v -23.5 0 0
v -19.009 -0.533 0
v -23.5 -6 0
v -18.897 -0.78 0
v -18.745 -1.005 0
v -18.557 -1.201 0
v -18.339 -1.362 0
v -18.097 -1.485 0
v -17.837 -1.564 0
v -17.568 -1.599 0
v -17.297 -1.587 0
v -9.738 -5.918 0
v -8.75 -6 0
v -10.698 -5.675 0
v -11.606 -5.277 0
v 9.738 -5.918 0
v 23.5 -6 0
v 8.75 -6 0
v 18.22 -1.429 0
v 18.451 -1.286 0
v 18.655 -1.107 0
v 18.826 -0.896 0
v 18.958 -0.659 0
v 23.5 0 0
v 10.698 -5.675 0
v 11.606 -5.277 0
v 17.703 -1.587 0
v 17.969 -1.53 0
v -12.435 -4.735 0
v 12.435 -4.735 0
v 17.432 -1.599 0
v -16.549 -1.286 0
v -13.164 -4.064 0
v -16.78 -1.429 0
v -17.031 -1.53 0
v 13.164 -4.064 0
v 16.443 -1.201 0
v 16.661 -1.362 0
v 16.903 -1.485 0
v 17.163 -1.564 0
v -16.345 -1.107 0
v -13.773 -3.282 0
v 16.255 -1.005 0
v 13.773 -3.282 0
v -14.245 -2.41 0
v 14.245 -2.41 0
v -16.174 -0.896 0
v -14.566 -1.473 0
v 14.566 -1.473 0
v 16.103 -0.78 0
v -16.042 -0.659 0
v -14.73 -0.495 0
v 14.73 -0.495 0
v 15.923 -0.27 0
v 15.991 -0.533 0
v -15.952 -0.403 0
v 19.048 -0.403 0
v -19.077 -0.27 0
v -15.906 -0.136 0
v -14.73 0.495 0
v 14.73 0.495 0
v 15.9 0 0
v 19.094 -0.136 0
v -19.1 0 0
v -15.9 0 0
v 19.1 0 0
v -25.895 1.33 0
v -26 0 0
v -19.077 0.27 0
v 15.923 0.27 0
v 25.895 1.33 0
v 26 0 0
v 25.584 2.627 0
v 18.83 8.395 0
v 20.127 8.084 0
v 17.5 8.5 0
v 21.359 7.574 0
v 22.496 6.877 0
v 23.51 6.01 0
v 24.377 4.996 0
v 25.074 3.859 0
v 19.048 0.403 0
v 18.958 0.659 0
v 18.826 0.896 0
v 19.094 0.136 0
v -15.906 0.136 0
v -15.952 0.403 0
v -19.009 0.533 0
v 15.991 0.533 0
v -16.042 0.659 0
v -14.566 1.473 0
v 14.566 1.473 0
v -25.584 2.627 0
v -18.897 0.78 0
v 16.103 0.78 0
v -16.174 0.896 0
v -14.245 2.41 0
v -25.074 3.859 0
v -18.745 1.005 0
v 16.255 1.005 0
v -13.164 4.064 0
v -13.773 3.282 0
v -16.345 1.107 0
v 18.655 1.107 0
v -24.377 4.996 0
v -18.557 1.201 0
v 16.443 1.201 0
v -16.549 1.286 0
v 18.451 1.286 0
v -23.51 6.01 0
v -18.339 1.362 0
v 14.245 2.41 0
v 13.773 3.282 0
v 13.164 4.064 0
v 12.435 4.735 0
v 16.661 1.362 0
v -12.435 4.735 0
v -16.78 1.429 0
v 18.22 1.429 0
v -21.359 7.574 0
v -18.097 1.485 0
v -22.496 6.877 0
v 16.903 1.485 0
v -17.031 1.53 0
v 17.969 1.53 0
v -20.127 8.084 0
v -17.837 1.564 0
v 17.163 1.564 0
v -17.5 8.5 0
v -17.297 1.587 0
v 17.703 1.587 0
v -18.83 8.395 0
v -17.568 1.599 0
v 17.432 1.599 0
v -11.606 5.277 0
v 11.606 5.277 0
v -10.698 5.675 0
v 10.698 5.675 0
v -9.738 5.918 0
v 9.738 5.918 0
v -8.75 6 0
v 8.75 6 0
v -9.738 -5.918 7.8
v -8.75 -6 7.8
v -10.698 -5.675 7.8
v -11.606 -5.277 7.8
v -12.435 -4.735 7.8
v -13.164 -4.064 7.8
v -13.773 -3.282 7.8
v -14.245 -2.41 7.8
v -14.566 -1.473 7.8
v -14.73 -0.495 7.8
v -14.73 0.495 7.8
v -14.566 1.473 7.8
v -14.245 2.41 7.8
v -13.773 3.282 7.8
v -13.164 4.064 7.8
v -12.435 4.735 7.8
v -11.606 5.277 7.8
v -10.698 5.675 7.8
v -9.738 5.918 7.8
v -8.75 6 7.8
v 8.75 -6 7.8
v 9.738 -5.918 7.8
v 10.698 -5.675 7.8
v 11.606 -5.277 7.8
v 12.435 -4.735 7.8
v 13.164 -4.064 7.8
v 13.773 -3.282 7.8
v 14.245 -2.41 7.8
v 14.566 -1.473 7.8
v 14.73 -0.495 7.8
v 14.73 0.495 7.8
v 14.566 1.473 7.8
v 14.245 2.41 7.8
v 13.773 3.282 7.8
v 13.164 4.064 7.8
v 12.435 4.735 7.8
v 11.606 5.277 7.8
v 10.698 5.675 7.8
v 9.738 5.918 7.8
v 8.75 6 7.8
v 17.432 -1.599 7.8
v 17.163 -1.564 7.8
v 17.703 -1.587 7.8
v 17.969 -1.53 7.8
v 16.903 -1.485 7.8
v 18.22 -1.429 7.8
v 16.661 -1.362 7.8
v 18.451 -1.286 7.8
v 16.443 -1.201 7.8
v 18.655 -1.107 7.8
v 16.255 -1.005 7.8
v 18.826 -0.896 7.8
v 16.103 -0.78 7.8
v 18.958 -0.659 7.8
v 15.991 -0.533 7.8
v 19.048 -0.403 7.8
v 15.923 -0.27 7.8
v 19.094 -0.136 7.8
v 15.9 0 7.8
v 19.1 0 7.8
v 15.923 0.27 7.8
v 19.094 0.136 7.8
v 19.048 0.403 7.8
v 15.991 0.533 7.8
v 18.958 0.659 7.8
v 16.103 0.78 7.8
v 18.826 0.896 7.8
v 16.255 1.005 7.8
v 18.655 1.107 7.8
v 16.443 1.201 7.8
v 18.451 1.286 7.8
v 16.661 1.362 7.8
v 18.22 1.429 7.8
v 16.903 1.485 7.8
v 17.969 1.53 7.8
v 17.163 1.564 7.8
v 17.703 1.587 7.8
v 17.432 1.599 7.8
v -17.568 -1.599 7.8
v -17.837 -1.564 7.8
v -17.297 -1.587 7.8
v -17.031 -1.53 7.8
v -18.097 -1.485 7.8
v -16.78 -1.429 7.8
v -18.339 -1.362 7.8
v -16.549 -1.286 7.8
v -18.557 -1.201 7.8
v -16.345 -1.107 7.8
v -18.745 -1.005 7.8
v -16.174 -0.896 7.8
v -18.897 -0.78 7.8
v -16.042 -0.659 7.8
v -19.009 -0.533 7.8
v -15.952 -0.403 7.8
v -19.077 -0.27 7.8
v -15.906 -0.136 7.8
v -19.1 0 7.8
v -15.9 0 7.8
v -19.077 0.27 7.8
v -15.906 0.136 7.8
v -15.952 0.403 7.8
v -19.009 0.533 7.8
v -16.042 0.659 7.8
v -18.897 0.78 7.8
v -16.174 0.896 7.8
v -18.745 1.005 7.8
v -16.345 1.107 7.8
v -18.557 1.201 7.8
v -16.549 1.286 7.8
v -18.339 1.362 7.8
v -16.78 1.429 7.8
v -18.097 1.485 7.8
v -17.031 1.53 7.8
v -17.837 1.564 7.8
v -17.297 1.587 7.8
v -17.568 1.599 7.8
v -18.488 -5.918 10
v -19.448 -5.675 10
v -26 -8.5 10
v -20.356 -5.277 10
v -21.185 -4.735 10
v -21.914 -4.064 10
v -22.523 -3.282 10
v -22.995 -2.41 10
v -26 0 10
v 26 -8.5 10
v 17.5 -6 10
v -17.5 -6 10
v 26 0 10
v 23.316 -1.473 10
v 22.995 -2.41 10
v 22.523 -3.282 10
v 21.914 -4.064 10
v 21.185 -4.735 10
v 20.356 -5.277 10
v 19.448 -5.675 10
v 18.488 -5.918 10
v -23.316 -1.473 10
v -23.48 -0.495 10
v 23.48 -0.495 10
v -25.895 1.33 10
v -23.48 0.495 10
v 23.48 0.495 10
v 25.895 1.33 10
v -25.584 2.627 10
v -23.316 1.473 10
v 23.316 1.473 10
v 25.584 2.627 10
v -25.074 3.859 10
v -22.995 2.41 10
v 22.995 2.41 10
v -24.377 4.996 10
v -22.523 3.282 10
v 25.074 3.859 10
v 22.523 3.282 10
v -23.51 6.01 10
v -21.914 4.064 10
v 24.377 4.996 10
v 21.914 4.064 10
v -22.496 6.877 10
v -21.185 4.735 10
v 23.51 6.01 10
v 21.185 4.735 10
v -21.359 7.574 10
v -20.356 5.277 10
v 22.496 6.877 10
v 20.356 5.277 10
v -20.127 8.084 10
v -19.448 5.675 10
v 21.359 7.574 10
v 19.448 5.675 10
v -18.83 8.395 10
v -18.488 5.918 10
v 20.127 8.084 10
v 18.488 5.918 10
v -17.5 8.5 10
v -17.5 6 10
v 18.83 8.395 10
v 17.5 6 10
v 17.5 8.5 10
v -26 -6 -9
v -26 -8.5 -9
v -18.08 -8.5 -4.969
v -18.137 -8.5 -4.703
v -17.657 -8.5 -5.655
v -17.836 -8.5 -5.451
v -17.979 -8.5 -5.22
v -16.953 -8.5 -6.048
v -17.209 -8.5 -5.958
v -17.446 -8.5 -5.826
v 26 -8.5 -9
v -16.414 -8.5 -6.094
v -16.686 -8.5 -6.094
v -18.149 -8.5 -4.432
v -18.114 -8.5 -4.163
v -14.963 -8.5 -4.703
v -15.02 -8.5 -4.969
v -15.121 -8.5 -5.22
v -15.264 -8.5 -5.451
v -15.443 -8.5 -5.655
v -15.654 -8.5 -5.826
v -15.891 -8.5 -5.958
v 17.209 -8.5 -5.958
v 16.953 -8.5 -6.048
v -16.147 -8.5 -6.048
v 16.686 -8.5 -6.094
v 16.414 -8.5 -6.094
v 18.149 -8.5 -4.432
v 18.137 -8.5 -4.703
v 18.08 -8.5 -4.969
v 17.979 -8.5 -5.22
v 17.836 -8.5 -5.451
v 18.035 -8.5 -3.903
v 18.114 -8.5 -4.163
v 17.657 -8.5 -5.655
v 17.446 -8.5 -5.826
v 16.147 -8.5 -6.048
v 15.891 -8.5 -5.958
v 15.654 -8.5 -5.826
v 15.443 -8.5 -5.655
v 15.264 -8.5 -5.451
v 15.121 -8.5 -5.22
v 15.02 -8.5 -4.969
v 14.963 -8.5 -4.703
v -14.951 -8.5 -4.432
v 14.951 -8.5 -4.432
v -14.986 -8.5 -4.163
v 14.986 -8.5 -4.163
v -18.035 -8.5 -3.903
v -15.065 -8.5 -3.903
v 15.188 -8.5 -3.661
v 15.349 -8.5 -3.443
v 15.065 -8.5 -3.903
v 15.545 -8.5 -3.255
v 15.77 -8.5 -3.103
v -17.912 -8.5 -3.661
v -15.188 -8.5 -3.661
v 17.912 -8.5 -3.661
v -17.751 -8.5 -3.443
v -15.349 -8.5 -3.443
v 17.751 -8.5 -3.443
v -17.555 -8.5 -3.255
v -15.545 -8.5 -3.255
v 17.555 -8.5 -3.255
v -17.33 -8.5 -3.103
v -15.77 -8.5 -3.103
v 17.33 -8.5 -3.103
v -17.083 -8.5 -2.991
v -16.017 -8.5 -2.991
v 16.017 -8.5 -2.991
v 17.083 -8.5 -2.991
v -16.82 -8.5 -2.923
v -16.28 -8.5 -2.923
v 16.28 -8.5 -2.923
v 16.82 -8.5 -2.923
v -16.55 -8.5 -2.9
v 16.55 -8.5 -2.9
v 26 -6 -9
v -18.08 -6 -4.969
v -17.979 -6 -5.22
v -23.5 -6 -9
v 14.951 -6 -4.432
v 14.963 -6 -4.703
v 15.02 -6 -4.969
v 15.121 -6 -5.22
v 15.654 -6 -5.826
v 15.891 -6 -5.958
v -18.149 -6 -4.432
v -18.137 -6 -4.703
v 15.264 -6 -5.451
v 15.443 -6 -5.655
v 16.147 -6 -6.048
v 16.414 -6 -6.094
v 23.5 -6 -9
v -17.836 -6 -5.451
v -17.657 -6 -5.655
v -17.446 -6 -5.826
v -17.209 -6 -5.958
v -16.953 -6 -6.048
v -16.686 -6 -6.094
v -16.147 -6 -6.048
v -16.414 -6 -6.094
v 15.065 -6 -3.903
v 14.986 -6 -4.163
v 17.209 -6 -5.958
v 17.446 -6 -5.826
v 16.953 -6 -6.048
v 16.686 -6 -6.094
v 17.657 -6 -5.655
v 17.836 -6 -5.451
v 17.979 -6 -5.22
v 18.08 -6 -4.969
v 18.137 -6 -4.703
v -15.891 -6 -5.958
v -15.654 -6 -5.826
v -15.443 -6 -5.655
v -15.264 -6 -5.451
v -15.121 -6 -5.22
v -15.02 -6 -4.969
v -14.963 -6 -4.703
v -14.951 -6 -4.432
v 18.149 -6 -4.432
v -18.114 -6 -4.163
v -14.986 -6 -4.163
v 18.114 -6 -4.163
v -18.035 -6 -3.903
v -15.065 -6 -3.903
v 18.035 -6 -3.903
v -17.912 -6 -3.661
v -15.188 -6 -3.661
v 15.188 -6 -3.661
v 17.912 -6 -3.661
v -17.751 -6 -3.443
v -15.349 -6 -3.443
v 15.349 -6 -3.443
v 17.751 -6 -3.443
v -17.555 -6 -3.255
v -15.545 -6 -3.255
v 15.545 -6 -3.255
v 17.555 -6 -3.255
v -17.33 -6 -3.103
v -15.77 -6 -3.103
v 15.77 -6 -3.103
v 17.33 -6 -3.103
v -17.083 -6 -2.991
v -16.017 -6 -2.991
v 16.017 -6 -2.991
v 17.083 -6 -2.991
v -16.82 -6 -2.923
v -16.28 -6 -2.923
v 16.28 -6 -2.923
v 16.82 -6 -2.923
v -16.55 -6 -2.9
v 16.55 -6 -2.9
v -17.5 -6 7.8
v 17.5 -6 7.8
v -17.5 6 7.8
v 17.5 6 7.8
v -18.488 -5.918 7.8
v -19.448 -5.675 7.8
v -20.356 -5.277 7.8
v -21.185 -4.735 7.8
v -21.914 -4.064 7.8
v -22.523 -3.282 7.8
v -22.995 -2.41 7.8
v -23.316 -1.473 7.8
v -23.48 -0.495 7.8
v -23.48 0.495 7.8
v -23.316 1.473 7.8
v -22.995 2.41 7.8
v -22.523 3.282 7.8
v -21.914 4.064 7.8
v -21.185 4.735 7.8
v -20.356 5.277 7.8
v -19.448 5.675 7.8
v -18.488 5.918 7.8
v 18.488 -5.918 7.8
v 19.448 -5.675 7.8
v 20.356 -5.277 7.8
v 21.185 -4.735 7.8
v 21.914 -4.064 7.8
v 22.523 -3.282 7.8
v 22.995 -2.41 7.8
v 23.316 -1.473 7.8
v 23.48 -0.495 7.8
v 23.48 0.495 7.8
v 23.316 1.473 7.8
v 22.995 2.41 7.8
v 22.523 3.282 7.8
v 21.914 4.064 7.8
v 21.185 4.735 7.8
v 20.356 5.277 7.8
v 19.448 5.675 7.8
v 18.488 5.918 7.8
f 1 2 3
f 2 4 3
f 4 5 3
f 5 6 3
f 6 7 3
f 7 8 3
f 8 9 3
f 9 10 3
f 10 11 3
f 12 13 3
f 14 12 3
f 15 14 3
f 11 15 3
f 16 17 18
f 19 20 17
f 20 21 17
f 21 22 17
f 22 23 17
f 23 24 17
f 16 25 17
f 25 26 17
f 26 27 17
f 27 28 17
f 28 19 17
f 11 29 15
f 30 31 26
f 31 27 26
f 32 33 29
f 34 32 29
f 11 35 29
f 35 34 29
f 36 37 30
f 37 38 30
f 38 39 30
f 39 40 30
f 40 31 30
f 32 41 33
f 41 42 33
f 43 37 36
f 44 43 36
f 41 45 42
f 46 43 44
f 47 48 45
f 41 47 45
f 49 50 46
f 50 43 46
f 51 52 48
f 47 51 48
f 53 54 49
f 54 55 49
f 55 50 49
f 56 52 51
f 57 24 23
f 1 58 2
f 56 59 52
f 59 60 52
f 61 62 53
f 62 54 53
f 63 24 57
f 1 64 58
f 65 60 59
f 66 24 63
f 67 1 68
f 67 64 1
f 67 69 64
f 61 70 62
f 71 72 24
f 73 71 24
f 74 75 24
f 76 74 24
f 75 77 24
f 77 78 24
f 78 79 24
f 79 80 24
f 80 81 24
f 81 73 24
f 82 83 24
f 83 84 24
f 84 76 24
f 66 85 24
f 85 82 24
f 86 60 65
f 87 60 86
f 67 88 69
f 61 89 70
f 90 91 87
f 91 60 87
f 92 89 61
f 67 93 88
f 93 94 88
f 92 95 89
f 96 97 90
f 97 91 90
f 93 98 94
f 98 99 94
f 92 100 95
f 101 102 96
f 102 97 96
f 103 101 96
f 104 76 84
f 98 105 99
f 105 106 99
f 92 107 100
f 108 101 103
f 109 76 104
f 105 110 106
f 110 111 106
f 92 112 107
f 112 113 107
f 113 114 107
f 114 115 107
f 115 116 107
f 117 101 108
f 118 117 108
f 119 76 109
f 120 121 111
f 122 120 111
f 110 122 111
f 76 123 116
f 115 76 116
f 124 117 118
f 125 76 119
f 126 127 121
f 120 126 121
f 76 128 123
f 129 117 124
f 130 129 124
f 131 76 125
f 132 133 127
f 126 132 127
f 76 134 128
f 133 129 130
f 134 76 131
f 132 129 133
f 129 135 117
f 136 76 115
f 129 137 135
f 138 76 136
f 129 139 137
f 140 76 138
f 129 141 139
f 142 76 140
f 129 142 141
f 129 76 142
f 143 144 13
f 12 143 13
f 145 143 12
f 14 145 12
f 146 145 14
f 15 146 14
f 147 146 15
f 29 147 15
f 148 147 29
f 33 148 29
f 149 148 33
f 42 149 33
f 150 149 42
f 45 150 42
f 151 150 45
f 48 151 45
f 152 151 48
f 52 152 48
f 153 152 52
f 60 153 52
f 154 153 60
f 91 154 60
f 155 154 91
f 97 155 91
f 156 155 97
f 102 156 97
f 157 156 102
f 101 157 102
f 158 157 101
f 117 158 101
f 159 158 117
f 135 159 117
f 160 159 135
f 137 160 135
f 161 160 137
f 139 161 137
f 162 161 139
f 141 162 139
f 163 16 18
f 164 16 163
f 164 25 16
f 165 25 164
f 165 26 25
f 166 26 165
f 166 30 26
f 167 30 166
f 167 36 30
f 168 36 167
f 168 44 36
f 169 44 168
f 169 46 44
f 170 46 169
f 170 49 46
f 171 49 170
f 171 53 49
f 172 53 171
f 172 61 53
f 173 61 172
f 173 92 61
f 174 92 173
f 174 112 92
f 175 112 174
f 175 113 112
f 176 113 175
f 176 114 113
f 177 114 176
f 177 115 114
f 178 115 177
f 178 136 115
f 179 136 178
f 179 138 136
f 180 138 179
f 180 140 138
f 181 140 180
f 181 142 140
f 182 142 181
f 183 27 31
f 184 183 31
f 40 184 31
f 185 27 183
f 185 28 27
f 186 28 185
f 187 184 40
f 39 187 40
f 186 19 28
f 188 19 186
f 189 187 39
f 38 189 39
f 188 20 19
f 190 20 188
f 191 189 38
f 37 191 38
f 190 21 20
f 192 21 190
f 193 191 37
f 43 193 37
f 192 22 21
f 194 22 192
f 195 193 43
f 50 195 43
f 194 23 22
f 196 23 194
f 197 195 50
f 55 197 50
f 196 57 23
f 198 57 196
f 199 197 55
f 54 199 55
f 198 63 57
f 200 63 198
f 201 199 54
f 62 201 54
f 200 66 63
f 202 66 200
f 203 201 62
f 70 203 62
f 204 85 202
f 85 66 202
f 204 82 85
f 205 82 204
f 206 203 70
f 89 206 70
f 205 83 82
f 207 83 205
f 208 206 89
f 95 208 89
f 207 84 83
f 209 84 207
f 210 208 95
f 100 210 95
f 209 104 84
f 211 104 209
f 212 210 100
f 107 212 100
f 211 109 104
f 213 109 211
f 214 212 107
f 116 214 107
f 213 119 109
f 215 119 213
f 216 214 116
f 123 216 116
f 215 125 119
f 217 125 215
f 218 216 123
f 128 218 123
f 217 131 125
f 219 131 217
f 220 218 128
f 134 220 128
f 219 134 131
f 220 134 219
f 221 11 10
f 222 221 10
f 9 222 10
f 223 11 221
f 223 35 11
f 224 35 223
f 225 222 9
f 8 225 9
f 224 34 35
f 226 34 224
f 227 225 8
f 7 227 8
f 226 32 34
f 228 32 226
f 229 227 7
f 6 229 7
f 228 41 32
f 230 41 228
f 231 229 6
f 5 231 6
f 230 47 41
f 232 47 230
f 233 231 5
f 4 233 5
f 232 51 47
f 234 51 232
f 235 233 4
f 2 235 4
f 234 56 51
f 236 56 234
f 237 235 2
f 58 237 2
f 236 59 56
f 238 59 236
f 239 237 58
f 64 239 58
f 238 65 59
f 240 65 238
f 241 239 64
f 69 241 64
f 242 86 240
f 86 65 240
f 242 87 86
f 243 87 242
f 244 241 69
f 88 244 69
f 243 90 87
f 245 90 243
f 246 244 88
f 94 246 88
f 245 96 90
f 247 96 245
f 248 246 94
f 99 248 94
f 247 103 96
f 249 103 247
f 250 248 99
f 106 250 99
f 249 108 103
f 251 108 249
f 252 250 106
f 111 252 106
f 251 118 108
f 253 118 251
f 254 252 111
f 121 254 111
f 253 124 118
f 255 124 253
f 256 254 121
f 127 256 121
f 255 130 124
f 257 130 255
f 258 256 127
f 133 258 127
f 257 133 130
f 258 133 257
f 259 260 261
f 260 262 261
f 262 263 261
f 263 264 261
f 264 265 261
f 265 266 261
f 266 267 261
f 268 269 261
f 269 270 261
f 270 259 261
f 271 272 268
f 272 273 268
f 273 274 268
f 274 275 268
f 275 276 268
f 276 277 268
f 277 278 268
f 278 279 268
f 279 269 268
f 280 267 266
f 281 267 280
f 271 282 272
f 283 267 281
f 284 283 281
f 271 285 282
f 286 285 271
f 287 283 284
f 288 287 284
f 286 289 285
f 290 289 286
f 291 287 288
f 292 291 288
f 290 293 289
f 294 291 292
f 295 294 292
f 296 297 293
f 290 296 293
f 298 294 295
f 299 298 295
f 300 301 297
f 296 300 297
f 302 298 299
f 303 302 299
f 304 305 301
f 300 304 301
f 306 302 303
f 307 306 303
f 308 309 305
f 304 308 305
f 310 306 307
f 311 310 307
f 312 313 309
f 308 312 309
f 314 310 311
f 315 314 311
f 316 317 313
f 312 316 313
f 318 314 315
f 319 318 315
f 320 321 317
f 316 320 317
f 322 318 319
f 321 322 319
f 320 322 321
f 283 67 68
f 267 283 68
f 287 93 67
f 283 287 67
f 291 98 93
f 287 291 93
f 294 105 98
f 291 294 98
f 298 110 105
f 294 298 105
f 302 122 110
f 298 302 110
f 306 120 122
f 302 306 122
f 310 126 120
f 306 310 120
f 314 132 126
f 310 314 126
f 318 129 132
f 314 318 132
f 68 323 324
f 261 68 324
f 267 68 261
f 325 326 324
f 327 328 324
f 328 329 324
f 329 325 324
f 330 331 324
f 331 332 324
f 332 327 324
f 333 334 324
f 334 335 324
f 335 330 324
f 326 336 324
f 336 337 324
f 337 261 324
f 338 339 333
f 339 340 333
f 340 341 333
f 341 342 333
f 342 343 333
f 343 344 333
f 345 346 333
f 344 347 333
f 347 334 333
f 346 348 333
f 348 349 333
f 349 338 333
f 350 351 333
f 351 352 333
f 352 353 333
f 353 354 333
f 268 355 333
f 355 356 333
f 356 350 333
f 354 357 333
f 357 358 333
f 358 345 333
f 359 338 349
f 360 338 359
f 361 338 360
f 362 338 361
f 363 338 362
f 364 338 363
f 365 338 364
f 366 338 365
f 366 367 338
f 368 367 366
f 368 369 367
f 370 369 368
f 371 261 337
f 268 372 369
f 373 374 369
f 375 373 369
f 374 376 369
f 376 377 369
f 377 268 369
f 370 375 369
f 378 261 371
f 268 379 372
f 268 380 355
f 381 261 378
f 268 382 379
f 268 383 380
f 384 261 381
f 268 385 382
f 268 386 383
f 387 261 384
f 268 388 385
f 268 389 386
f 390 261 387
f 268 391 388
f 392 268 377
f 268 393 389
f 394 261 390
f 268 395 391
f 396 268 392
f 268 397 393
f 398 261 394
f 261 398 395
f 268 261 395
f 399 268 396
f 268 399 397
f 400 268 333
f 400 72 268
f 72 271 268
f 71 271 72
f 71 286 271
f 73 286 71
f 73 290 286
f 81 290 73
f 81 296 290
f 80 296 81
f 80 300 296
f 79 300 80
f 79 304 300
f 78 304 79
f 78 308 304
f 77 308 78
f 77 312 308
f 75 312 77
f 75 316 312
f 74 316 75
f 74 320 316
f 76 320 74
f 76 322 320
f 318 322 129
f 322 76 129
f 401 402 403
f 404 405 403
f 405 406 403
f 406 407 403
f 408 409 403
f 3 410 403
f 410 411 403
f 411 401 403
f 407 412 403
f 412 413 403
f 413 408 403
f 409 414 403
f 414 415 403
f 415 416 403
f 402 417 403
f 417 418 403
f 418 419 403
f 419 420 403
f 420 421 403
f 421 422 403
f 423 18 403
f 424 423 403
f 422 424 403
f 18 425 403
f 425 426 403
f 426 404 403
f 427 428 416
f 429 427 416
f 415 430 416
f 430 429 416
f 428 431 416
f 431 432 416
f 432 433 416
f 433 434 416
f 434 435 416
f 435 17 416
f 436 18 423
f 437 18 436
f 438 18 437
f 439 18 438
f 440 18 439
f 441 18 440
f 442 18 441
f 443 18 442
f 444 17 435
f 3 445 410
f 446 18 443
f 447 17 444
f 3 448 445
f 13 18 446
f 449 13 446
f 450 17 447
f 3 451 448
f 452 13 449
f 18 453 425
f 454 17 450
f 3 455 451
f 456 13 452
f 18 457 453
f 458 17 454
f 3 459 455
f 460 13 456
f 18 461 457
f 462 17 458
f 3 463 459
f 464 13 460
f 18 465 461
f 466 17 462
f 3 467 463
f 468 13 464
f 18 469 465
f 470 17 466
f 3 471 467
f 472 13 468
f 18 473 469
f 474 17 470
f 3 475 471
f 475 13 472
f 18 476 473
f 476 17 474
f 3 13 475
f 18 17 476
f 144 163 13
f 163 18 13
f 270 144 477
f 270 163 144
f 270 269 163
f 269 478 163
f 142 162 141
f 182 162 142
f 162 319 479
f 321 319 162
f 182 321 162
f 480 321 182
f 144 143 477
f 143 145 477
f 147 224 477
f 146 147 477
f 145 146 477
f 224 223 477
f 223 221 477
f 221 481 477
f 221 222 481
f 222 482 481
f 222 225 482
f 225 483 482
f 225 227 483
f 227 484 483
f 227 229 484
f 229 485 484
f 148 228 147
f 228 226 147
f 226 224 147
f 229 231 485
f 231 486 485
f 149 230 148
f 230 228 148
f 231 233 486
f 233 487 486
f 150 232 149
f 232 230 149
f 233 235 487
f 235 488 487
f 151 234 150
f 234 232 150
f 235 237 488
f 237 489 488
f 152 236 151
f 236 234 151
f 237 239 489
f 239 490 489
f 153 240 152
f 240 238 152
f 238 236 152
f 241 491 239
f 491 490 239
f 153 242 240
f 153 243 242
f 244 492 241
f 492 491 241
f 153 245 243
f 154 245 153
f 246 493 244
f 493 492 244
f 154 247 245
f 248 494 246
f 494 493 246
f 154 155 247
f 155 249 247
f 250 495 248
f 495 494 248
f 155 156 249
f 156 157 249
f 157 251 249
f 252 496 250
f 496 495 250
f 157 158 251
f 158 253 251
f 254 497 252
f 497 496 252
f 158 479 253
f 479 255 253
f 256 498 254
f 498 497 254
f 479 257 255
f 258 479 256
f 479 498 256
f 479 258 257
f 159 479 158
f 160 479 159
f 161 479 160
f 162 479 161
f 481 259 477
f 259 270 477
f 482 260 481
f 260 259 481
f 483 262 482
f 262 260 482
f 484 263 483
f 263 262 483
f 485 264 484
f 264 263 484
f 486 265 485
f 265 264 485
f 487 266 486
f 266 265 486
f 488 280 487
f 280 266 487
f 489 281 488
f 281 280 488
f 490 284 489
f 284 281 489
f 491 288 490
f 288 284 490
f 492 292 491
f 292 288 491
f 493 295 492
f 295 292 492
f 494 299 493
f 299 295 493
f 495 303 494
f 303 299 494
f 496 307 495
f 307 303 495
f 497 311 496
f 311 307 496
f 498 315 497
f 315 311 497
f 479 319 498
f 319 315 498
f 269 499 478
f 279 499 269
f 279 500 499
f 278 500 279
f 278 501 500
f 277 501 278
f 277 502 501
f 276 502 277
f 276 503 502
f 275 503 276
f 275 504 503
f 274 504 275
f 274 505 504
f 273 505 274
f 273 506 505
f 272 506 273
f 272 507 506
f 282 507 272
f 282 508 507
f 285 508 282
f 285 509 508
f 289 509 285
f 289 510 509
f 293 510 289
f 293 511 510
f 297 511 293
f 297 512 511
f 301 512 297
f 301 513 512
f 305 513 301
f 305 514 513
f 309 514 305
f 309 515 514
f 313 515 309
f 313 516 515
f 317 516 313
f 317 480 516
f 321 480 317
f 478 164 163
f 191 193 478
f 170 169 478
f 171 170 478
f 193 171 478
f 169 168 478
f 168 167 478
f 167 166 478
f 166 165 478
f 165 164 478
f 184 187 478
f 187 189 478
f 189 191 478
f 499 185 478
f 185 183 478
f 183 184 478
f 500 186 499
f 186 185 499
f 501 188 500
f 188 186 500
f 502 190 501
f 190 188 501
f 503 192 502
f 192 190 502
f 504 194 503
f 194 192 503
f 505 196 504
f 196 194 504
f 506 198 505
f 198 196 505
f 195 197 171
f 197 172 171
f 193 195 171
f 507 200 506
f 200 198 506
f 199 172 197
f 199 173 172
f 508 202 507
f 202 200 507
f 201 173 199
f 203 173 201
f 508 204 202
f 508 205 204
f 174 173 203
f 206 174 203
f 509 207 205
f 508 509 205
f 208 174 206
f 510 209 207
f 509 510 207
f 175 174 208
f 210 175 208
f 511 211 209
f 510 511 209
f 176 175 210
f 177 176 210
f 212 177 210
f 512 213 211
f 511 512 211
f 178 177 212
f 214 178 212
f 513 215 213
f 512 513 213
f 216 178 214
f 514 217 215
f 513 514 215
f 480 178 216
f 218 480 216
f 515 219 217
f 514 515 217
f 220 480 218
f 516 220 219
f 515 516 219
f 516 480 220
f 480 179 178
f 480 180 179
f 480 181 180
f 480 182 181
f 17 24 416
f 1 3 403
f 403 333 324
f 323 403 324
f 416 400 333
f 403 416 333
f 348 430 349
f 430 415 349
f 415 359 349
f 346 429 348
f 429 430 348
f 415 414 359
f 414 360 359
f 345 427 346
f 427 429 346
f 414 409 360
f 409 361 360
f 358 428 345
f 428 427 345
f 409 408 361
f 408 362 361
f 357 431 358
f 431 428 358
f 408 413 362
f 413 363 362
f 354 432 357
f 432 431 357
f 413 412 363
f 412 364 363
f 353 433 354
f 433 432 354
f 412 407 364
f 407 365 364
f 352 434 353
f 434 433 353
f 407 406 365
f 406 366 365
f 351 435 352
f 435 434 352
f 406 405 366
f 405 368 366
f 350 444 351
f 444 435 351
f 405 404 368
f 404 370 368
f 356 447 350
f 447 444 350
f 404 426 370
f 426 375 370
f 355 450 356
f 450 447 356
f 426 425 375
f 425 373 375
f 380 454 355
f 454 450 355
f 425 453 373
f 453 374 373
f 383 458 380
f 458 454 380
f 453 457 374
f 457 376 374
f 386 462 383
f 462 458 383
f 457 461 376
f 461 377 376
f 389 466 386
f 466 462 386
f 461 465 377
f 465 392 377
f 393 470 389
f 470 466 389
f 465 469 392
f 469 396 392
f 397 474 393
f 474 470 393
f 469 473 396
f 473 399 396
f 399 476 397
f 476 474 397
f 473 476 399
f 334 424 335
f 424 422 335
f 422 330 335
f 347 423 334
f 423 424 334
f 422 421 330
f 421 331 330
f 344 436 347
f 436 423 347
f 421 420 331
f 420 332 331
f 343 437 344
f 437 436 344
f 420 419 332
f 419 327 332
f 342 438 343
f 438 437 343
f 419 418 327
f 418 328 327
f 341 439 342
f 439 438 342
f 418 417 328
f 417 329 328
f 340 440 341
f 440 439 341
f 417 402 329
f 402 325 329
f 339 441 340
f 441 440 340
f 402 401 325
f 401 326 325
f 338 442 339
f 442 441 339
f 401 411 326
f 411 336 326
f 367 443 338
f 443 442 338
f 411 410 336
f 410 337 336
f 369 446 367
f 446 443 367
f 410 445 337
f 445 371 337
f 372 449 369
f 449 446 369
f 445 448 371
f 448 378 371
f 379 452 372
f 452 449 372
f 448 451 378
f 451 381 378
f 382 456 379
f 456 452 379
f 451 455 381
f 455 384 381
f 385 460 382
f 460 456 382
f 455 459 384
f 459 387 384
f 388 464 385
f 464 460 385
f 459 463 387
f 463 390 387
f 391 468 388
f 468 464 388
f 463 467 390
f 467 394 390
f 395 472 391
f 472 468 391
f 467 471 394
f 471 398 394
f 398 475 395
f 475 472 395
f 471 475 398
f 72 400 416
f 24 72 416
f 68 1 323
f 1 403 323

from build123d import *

# Parameters (mm, degrees)
ESBO_O1_R                = 1.6
RESSALTO_EXTRUS_O2_DEPTH = 10
CORTE_EXTRUS_O1_DEPTH    = 2.2
RESSALTO_EXTRUS_O3_DEPTH = 9
ESBO_O4_R                = 1.6
CORTE_EXTRUS_O2_DEPTH    = 9
CORTE_EXTRUS_O3_DEPTH    = 54.630681517


with BuildPart() as part:
    # Esboço1 → Ressalto-extrusão2 (new body)
    with BuildSketch(Plane.XY):
        with BuildLine():
            Line((-26, 0), (-26, -8.5))
            Line((-26, -8.5), (-17.5, -8.5))
            Line((-17.5, -8.5), (0, -8.5))
            Line((0, -8.5), (17.5, -8.5))
            Line((17.5, -8.5), (26, -8.5))
            Line((26, -8.5), (26, 0))
            ThreePointArc((26, 0), (23.51040764, 6.01040764), (17.5, 8.5))
            Line((17.5, 8.5), (0, 8.5))
            Line((0, 8.5), (-17.5, 8.5))
            ThreePointArc((-17.5, 8.5), (-23.51040764, 6.01040764), (-26, 0))
        make_face()
        with Locations((-17.5, 0)):
            Circle(ESBO_O1_R, mode=Mode.SUBTRACT)
        with Locations((17.5, 0)):
            Circle(ESBO_O1_R, mode=Mode.SUBTRACT)
        with BuildLine():
            Line((0, 6), (8.75, 6))
            ThreePointArc((8.75, 6), (14.75, 0), (8.75, -6))
            Line((8.75, -6), (0, -6))
            Line((0, -6), (-8.75, -6))
            ThreePointArc((-8.75, -6), (-14.75, 0), (-8.75, 6))
            Line((-8.75, 6), (0, 6))
        make_face(mode=Mode.SUBTRACT)
    extrude(amount=RESSALTO_EXTRUS_O2_DEPTH)

    # Esboço2 → Corte-extrusão1 (cut)
    with BuildSketch(Plane.XY.offset(10)):
        with BuildLine():
            Line((0, 6), (-17.5, 6))
            ThreePointArc((-17.5, 6), (-23.5, 0), (-17.5, -6))
            Line((-17.5, -6), (0, -6))
            Line((0, -6), (17.5, -6))
            ThreePointArc((17.5, -6), (23.5, 0), (17.5, 6))
            Line((17.5, 6), (0, 6))
        make_face()
    extrude(amount=-CORTE_EXTRUS_O1_DEPTH, mode=Mode.SUBTRACT)

    # Esboço3 → Ressalto-extrusão3 (add)
    with BuildSketch(Plane(origin=(0, 0, 0), x_dir=(-1, 0, 0), z_dir=(0, 0, -1))):
        Polygon((-8.75, -6), (-23.5, -6), (-23.5, 0), (-26, 0), (-26, -8.5), (26, -8.5), (26, 0), (23.5, 0), (23.5, -6), align=None)
    extrude(amount=RESSALTO_EXTRUS_O3_DEPTH)

    # Esboço4 → Corte-extrusão2 (cut)
    with BuildSketch(Plane(origin=(0, -6, 0), x_dir=(1, 0, 0), z_dir=(0, 1, 0))):
        with Locations(Location((-16.55, 4.5, 0), (0, 0, 270))):
            Circle(ESBO_O4_R)
        with Locations(Location((16.55, 4.5, 0), (0, 0, 270))):
            Circle(ESBO_O4_R)
    extrude(amount=-CORTE_EXTRUS_O2_DEPTH, mode=Mode.SUBTRACT)

    # Esboço6 → Corte-extrusão3 (cut, through all)
    with BuildSketch(Plane(origin=(26, 0, 0), x_dir=(0, 0, -1), z_dir=(1, 0, 0))):
        Polygon((9, -6), (0, 0), (2.00580726, 2.470347723), (10.468816684, 1.926634827), (11.248926491, 0), align=None)
    extrude(amount=-CORTE_EXTRUS_O3_DEPTH, mode=Mode.SUBTRACT)


solid = part.part
